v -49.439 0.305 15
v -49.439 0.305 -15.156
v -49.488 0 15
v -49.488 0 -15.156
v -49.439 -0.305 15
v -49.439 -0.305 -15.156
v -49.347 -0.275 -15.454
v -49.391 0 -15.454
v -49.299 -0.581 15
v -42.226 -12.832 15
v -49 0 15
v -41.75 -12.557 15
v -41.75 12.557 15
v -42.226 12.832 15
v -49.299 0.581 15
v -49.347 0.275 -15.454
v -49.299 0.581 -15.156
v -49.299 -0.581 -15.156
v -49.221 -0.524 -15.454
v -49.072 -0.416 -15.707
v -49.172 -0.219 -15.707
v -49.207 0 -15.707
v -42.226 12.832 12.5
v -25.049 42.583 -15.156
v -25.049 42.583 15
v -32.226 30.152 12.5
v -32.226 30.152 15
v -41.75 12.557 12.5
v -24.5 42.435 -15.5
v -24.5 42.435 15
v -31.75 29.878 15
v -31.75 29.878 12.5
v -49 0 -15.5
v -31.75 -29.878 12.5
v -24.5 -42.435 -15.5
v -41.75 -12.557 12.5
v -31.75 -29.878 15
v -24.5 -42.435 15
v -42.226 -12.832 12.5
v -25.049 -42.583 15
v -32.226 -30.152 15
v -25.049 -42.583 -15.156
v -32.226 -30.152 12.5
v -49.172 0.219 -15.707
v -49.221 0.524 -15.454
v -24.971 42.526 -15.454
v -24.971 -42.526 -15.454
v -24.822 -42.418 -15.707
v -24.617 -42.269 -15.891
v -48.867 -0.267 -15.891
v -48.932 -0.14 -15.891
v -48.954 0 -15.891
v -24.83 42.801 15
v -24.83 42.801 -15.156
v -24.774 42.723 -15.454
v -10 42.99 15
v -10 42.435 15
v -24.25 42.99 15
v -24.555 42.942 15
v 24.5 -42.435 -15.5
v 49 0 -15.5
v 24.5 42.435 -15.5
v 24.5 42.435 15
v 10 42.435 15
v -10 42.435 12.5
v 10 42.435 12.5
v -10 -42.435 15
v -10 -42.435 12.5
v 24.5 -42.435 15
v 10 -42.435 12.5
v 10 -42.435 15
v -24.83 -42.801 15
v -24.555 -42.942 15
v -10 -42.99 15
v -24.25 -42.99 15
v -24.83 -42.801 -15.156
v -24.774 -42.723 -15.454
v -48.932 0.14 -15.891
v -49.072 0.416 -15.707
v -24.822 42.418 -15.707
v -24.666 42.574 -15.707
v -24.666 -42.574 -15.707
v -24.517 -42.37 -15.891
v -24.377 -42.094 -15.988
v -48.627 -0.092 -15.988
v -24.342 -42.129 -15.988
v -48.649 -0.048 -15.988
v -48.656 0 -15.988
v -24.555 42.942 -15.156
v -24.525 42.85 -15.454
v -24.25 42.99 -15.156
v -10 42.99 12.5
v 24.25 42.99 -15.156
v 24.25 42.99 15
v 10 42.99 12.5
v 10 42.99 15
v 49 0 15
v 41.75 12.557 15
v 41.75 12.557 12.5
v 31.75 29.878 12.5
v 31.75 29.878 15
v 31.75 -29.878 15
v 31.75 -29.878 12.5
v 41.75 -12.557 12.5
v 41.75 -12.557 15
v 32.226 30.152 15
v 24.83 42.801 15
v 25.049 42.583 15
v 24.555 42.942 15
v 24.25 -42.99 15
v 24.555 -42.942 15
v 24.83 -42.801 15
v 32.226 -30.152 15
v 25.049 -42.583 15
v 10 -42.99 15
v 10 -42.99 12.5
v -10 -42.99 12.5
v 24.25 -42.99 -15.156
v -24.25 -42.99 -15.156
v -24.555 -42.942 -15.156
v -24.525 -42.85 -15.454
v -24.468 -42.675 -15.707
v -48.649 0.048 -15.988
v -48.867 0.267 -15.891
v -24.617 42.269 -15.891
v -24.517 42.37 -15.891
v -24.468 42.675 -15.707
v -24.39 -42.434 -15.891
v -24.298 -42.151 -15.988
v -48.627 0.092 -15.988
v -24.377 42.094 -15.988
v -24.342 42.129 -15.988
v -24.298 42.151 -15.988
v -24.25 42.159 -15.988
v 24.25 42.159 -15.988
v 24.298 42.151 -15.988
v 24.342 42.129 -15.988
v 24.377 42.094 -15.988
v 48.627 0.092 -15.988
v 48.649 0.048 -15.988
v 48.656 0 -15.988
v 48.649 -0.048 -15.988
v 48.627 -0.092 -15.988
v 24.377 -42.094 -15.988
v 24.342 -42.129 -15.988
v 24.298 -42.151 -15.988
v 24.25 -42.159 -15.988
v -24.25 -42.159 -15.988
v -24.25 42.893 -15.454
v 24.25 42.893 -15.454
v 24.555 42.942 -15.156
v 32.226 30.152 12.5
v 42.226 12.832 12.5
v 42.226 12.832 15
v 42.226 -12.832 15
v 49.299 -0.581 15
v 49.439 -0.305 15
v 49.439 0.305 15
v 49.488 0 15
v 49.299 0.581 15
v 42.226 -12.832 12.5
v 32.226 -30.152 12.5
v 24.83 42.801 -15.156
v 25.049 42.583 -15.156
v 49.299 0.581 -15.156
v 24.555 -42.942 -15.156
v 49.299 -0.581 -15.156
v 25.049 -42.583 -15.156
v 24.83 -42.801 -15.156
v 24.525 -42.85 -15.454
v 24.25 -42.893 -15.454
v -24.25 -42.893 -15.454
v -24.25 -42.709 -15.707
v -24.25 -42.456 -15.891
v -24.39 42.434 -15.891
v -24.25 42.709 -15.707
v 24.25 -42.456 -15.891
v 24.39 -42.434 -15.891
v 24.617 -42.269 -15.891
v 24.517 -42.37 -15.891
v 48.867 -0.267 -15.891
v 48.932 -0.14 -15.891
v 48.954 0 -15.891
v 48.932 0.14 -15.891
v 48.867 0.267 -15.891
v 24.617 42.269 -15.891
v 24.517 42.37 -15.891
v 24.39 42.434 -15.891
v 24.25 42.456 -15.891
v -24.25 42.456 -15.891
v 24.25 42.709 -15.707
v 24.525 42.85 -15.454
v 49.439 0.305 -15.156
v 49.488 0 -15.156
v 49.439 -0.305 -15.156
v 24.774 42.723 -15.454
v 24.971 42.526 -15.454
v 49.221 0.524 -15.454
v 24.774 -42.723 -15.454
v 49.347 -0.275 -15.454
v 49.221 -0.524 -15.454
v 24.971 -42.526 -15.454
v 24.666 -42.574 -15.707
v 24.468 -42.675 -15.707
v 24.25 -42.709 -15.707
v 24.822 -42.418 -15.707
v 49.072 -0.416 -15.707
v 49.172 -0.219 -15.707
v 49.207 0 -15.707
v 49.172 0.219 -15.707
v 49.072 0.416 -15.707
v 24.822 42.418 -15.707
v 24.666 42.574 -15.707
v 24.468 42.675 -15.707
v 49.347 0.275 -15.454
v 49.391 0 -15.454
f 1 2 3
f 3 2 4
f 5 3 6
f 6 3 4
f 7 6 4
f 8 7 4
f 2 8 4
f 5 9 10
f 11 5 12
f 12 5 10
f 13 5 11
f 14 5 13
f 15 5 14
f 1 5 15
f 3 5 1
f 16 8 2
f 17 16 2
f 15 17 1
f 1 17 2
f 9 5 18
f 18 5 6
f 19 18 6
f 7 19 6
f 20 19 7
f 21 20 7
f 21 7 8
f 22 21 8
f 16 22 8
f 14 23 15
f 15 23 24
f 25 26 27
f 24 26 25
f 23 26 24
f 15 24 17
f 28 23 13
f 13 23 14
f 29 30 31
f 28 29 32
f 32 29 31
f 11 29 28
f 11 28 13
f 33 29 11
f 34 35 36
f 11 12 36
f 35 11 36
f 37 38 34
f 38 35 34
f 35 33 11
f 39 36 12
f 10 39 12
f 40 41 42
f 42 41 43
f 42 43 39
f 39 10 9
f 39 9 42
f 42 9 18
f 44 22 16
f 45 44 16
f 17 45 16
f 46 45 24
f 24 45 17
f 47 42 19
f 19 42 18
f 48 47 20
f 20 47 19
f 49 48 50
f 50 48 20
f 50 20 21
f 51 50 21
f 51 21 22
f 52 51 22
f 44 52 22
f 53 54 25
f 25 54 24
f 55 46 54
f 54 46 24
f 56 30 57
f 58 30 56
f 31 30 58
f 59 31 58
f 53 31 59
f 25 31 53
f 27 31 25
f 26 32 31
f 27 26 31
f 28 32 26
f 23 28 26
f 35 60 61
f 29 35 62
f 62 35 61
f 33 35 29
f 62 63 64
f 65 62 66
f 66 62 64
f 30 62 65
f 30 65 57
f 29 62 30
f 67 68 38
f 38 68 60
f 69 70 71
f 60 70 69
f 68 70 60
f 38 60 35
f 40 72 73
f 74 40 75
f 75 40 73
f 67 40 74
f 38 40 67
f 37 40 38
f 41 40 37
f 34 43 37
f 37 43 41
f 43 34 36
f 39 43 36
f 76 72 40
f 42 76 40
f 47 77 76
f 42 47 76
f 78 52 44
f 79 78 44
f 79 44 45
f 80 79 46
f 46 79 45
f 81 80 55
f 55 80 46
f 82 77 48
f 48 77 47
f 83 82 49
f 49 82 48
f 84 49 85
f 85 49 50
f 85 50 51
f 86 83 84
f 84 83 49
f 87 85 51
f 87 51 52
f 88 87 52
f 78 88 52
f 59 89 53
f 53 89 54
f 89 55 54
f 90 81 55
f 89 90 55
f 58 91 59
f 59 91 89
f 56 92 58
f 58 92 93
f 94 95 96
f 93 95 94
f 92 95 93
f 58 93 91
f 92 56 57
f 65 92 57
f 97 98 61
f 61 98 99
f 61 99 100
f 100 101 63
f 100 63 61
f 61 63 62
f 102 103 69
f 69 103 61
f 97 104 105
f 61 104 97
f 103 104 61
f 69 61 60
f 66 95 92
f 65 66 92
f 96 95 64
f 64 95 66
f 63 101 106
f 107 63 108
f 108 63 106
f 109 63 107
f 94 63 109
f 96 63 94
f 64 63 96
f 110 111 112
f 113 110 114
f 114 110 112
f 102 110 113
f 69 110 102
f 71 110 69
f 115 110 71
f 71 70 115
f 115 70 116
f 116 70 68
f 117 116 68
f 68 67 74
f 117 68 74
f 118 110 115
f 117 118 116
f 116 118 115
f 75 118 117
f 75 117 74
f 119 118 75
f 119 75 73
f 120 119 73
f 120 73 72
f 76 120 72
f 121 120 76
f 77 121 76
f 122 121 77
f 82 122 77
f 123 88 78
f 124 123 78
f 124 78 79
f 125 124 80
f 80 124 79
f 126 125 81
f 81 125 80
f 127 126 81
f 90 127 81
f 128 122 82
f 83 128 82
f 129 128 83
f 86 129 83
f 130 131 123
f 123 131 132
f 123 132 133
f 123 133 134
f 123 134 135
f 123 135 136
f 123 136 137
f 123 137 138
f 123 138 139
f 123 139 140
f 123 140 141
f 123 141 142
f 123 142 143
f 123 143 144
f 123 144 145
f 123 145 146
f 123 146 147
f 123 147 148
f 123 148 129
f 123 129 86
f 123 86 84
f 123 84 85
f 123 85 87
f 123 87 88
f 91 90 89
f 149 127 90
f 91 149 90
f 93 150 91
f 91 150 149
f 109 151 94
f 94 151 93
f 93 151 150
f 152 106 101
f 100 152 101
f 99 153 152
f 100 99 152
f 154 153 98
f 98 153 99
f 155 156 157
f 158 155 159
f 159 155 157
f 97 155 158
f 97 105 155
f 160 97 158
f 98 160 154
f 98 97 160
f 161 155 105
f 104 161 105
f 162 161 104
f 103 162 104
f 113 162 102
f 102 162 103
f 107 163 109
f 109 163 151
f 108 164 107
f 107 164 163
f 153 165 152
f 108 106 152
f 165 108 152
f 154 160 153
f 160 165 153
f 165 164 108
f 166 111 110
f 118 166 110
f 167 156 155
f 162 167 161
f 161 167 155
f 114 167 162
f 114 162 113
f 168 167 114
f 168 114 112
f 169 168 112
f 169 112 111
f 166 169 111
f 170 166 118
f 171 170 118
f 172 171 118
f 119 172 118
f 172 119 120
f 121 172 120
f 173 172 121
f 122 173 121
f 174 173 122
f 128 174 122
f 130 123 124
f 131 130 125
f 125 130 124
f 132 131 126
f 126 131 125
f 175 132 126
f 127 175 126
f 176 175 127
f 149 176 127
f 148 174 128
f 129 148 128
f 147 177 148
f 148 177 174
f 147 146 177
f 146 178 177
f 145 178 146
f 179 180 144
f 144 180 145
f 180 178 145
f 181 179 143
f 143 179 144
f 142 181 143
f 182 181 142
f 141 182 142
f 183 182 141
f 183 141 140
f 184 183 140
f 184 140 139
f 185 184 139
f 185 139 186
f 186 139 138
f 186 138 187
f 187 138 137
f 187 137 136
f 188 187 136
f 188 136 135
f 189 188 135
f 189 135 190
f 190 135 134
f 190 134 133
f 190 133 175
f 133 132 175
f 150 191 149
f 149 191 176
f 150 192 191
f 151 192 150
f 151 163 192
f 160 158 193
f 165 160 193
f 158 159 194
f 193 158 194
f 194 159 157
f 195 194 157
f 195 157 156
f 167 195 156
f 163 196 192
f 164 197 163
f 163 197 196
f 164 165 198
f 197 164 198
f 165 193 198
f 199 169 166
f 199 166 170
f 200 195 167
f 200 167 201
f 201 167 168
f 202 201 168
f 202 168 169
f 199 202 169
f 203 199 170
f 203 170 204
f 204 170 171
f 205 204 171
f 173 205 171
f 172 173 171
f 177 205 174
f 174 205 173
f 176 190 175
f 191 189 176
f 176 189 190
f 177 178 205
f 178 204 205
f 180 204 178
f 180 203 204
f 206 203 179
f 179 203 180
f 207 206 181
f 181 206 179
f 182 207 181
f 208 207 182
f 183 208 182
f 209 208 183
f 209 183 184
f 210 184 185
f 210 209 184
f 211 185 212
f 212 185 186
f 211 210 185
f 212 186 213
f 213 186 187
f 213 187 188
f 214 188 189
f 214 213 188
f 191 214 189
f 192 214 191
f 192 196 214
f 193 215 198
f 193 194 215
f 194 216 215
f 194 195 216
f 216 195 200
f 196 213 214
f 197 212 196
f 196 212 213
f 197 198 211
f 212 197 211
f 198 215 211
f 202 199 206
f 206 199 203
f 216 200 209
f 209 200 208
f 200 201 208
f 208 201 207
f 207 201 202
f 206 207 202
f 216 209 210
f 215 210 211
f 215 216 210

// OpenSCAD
mode = 1; // 1 = box, 2 = lid, 3 = both
width = 50;
height = 30;
wall_thickness = 1;
face_thickness = 1;
connector_width = 20;
connector_height = 5;
notch_height = 10;

module box() {
	difference() {
		minkowski() {
			cylinder(r=width - (wall_thickness * 1.5), h=height, $fn=6, center=true);
			sphere(r=wall_thickness, $fn=20);
		}
		translate([0, 0, face_thickness * wall_thickness + 3.5])
			cylinder(r=width - wall_thickness, h=height + 10, $fn=6, center=true);
		translate([0, 0, height])
			cube([width * 2, width * 2, height], center=true);
	}
}

module holes() {
	for (i=[0:5]) {
		rotate([90, 0, 360 / 6 * i])
			translate([-(connector_width / 2), (height / 2) - (connector_height / 2), 0])
				cube([connector_width, connector_height, width]);
	}
}

module notch() {	
	difference() {
		union() {
			cube([5, wall_thickness, notch_height]);
			translate([0, -wall_thickness, 0])
				cube([5, wall_thickness, notch_height / 2]);
		}
		rotate([45, 0, 0])
			translate([0, -2.5, -1.5])
				cube([5, wall_thickness * 2, 7]);
	}
}

module lid() {
	cylinder(r=width - wall_thickness - 2, h=face_thickness, $fn=6, center=true);
	// Hooks
	//for (i=[0:5]) {
//		rotate([0, 0, 360 / 6 * (i + 0)])
//			translate([width - (wall_thickness * 2), -2.5, -notch_height])
//				rotate([0, 0, 90])
//					notch();
//					
//	}
}

if (mode == 1 || mode == 3) {
	difference() {
		box();
		holes();
	}
}

if (mode == 2 || mode == 3) {
	translate([0, 0, 0])
		lid();
}
